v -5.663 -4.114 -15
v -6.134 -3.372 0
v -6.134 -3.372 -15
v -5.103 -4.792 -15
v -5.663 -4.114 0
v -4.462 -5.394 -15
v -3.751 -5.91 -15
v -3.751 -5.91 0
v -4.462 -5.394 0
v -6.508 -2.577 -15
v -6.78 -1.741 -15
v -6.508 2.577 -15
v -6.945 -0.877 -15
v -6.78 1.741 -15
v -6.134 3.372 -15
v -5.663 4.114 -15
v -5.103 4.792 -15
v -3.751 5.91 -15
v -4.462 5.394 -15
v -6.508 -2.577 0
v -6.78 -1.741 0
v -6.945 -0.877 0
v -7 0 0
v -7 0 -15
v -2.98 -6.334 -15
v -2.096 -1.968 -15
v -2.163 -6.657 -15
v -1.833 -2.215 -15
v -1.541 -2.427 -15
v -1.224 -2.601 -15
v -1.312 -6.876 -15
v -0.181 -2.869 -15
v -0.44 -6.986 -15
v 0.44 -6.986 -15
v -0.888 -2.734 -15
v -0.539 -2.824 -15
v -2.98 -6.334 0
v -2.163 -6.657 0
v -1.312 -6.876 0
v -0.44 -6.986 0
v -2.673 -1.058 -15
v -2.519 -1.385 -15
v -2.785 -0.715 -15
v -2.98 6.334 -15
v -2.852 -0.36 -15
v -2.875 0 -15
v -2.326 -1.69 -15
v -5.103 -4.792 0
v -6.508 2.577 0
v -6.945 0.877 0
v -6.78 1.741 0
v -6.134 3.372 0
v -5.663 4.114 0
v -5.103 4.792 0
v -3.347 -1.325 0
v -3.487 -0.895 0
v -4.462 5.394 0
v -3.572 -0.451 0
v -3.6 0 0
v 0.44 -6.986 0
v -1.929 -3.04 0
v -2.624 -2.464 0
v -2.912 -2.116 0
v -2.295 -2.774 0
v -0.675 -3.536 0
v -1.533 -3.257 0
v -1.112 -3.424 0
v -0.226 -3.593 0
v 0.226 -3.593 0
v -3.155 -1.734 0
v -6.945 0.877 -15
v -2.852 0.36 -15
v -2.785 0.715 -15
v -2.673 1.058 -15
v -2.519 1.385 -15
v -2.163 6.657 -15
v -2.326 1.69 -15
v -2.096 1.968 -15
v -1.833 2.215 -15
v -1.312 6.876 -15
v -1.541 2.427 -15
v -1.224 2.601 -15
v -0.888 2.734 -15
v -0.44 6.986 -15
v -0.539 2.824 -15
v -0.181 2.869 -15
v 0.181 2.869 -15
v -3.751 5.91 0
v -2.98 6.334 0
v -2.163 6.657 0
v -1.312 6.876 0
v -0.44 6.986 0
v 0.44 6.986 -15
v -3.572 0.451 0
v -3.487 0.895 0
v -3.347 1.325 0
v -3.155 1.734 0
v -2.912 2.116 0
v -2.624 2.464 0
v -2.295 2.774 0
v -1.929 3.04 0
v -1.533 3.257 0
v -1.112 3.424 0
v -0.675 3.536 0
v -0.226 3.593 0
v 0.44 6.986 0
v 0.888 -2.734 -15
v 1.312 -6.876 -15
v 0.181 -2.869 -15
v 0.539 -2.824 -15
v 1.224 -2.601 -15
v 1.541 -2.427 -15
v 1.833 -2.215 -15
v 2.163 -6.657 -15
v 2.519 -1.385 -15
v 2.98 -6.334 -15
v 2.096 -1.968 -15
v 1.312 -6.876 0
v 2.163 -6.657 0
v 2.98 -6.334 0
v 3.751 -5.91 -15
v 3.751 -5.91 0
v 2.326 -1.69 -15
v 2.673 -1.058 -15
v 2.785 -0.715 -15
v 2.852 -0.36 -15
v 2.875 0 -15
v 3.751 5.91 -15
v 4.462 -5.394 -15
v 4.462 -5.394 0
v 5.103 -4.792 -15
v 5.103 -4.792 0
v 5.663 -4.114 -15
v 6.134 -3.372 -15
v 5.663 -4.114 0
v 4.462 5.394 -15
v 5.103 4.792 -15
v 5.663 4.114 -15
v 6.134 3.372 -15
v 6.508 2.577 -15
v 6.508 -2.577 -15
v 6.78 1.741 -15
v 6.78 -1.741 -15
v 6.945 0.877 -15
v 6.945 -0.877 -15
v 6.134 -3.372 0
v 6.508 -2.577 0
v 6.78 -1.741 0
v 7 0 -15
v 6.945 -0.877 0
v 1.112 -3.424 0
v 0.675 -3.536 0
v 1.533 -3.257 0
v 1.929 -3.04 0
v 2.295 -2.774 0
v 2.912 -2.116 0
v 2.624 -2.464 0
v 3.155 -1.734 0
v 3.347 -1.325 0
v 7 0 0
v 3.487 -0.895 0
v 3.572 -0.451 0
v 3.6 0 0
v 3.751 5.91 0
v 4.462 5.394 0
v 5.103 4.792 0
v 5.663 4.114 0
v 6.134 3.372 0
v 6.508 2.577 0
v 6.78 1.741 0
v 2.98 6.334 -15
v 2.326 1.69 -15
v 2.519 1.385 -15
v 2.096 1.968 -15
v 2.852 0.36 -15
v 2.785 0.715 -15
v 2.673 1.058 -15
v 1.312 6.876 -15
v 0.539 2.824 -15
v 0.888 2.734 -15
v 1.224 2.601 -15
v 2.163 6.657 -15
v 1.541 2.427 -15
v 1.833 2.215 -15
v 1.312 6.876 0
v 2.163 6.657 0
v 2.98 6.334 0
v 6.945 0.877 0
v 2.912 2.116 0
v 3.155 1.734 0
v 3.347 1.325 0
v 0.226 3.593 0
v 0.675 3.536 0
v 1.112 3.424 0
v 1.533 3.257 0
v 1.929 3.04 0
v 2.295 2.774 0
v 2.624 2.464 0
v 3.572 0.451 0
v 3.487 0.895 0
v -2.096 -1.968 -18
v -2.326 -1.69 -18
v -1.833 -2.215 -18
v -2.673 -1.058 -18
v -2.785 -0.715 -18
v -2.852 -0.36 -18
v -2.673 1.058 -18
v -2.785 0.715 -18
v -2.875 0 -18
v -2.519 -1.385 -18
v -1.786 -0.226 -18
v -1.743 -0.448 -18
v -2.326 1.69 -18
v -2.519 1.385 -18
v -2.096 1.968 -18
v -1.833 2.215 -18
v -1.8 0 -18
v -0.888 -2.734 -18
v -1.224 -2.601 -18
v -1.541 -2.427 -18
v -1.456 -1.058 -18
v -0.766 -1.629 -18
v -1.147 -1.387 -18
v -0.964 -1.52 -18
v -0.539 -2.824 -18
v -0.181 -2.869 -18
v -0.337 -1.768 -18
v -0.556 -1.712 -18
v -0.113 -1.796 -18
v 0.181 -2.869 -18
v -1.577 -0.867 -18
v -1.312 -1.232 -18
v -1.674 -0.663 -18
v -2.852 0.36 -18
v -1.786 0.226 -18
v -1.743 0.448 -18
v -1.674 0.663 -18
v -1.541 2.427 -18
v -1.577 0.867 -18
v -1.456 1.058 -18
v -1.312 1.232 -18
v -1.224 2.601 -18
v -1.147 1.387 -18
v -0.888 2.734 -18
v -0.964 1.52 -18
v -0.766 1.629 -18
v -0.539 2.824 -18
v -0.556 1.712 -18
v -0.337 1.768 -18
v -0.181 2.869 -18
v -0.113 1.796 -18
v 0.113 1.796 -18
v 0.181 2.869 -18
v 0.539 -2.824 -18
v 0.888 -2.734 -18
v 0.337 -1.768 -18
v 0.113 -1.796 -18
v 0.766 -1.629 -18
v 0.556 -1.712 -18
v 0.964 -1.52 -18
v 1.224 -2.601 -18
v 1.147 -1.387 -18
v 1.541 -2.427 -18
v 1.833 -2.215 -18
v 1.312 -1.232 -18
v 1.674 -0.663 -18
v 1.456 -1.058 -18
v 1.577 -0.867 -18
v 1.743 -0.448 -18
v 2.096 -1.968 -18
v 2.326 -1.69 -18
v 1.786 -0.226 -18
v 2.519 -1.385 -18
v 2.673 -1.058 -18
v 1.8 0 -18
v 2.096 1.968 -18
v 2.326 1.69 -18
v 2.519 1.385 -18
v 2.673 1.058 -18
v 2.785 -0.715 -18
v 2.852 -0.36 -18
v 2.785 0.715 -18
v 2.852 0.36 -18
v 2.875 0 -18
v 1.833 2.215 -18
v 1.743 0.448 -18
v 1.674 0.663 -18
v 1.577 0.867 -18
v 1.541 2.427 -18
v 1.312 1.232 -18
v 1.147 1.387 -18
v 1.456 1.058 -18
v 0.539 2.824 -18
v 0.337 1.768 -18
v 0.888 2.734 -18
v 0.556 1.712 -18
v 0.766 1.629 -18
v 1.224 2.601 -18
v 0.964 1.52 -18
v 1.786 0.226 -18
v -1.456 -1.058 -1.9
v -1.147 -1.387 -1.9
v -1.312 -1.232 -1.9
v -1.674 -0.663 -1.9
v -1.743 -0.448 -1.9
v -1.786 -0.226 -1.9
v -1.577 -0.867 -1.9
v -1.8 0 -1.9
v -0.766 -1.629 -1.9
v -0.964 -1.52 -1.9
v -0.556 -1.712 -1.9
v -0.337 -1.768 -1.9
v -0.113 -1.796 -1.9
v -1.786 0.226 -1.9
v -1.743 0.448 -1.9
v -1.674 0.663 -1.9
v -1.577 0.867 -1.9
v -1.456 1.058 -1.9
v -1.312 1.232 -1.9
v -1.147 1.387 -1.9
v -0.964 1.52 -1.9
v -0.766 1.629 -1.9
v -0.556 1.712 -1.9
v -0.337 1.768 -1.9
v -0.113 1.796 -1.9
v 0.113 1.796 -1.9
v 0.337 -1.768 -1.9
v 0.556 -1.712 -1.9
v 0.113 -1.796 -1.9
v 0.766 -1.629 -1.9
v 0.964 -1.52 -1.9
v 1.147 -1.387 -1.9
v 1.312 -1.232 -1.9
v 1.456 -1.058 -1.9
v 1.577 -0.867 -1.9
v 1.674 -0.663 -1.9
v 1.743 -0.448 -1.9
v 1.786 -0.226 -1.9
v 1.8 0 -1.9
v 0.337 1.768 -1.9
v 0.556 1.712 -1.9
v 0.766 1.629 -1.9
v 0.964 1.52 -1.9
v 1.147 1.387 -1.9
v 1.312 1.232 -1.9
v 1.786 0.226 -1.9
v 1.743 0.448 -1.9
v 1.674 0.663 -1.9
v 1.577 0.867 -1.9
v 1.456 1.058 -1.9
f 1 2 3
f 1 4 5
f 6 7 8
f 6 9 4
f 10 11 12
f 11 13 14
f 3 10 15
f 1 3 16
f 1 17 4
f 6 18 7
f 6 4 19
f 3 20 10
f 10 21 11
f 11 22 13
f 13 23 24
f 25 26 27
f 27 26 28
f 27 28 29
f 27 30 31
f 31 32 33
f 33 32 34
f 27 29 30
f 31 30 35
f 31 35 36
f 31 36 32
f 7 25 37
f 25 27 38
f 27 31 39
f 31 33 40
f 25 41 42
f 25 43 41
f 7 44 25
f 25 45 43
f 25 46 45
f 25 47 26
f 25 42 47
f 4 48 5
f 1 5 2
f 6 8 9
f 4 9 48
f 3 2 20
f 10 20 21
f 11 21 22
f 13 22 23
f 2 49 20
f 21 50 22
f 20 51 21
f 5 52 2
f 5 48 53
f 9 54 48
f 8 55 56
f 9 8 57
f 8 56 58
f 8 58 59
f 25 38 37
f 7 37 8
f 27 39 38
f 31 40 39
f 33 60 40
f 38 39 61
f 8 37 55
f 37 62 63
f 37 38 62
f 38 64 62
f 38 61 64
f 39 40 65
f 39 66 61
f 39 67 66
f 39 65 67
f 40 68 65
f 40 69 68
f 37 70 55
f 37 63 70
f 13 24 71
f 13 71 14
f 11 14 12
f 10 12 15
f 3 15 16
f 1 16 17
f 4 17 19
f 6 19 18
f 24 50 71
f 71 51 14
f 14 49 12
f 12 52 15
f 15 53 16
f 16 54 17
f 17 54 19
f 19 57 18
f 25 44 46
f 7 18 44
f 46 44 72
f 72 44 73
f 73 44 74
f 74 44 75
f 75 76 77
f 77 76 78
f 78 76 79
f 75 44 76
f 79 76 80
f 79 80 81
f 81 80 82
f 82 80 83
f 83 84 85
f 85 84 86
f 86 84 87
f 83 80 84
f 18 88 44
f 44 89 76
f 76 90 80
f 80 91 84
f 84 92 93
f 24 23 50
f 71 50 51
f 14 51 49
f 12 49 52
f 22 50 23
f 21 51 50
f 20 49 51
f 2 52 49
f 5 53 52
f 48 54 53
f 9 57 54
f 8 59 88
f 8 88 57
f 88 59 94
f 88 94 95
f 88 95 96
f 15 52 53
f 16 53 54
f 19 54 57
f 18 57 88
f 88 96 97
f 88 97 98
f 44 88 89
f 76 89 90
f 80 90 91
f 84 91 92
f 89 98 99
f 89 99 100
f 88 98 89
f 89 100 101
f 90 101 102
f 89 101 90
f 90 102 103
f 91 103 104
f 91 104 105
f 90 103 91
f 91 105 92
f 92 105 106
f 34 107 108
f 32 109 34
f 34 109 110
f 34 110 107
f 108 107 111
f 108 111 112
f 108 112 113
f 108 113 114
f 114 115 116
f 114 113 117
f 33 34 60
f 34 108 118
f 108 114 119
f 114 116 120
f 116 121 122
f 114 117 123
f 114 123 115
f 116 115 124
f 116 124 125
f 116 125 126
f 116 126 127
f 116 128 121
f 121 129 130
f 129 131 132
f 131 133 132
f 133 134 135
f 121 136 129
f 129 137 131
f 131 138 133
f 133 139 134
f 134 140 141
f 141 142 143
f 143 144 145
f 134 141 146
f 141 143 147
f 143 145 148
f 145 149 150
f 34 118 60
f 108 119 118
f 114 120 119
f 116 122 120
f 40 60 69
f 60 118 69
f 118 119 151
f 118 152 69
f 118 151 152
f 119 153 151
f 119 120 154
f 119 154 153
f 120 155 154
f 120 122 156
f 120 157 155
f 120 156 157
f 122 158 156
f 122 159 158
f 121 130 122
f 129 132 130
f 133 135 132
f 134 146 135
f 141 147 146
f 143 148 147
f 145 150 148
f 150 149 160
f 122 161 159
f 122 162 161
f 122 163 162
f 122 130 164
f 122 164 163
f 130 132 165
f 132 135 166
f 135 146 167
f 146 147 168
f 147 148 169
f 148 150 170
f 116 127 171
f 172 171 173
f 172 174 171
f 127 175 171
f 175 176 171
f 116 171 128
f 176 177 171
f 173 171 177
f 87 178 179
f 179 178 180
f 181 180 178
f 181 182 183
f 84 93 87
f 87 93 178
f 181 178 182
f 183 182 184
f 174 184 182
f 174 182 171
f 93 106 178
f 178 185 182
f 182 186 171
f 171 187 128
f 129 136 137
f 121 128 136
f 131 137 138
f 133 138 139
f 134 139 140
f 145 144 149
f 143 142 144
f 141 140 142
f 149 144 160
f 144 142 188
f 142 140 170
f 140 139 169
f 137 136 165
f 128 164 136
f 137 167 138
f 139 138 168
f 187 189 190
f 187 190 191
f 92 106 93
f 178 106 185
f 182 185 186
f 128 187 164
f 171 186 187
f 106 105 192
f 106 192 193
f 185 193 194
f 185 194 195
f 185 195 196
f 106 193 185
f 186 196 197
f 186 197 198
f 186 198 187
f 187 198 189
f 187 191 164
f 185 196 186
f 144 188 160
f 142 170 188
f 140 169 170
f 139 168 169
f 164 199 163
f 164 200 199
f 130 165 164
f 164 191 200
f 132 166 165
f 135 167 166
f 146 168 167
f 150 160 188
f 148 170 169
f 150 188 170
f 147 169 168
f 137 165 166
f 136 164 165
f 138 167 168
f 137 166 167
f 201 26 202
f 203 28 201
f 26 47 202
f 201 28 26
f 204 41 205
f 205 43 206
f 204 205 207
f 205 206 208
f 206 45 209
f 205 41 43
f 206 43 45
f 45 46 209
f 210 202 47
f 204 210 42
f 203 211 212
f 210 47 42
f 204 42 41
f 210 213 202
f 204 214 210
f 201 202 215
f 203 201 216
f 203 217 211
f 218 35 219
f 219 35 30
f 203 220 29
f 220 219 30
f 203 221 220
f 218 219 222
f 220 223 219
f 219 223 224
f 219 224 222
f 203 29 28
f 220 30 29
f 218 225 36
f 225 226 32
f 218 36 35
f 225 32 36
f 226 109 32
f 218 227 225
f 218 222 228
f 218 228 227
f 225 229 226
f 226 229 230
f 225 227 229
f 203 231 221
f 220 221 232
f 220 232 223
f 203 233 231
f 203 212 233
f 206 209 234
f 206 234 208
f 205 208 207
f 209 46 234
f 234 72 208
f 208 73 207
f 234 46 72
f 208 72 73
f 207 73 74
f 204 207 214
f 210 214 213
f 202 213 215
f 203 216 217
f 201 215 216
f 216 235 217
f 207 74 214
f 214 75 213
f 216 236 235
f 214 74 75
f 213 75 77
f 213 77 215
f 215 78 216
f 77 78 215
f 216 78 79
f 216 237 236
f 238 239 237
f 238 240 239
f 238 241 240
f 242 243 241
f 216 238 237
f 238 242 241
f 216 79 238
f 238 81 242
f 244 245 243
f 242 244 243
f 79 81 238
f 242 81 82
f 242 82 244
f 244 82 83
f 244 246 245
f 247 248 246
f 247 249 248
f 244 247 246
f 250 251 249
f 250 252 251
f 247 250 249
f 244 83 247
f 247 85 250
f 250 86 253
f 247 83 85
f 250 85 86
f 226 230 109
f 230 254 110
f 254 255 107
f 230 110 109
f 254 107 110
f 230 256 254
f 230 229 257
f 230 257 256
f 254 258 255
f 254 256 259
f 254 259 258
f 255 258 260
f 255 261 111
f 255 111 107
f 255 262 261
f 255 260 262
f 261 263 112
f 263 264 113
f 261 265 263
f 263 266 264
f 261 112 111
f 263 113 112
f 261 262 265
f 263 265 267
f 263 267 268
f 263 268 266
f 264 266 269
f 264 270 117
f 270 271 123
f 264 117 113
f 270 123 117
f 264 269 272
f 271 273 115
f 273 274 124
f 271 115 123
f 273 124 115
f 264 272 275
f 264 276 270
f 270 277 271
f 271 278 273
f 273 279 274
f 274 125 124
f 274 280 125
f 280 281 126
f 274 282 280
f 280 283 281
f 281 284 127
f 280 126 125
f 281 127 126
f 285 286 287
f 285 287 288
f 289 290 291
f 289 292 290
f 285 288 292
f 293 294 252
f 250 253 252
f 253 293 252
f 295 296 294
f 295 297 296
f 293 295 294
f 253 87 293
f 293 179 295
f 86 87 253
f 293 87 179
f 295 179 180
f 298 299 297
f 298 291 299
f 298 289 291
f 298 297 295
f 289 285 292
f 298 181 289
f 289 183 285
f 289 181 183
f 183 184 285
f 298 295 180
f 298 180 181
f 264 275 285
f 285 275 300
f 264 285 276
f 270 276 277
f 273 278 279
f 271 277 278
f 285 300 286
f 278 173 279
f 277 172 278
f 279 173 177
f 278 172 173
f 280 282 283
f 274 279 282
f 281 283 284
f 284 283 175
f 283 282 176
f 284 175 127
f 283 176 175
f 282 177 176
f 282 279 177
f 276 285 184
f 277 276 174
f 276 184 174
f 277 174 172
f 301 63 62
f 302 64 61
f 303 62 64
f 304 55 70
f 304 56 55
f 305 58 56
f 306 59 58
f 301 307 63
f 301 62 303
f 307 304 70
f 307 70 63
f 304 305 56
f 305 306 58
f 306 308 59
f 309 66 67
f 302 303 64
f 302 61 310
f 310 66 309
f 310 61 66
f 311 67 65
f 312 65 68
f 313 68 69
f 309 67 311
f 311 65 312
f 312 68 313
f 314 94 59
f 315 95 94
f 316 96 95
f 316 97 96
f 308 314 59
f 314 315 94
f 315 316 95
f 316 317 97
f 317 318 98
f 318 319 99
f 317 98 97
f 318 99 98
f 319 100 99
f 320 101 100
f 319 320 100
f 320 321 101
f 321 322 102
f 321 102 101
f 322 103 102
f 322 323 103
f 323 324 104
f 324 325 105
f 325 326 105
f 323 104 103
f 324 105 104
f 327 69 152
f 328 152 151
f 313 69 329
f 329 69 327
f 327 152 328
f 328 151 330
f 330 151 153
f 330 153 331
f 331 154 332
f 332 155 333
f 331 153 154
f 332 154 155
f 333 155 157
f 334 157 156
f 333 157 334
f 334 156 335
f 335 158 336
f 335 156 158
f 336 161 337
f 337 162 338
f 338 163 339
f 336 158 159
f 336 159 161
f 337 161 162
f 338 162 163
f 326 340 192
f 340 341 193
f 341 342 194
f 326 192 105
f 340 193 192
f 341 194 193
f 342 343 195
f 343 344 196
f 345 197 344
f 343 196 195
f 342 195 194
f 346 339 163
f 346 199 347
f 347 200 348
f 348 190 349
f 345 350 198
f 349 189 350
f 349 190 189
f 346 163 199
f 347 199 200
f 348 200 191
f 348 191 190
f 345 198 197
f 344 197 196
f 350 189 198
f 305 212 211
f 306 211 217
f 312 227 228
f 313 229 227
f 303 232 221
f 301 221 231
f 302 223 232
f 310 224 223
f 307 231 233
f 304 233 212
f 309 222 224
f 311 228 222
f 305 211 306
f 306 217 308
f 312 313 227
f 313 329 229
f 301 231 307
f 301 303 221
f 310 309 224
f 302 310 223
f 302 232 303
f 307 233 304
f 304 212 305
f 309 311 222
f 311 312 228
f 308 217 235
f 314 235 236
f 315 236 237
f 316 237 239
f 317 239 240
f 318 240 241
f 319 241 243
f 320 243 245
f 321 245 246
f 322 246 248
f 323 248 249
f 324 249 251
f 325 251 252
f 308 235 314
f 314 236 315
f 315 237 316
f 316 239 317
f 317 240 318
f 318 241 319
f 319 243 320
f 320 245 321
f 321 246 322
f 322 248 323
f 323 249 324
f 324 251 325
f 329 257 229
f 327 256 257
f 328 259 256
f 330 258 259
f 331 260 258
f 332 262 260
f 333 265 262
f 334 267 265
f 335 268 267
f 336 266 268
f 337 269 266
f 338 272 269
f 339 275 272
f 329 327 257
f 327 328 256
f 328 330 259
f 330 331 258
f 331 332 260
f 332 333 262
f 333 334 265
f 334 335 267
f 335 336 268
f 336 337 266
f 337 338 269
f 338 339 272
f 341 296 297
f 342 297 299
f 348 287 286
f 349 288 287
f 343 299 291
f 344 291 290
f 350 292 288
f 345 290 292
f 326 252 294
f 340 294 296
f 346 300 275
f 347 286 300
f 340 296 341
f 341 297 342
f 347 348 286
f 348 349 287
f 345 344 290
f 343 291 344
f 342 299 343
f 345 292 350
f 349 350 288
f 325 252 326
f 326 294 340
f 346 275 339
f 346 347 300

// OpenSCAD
$fn = 50;

difference() {
	union() {
		translate(v = [0, 0, -15.0]) {
			cylinder(h = 15, r = 7.0);
		}
		#translate(v = [0, 0, -18.0]) {
			cylinder(h = 18, r = 2.875);
		}
	}
	union() {
		translate(v = [0, 0, 0]) {
			rotate(a = [0, 0, 0]) {
				difference() {
					union() {
						translate(v = [0, 0, -18.0]) {
							cylinder(h = 18, r = 1.5);
						}
						translate(v = [0, 0, -1.9]) {
							cylinder(h = 1.9, r1 = 1.8, r2 = 3.6);
						}
						translate(v = [0, 0, -18.0]) {
							cylinder(h = 18, r = 1.8);
						}
						translate(v = [0, 0, -18.0]) {
							cylinder(h = 18, r = 1.5);
						}
					}
					union();
				}
			}
		}
	}
}
